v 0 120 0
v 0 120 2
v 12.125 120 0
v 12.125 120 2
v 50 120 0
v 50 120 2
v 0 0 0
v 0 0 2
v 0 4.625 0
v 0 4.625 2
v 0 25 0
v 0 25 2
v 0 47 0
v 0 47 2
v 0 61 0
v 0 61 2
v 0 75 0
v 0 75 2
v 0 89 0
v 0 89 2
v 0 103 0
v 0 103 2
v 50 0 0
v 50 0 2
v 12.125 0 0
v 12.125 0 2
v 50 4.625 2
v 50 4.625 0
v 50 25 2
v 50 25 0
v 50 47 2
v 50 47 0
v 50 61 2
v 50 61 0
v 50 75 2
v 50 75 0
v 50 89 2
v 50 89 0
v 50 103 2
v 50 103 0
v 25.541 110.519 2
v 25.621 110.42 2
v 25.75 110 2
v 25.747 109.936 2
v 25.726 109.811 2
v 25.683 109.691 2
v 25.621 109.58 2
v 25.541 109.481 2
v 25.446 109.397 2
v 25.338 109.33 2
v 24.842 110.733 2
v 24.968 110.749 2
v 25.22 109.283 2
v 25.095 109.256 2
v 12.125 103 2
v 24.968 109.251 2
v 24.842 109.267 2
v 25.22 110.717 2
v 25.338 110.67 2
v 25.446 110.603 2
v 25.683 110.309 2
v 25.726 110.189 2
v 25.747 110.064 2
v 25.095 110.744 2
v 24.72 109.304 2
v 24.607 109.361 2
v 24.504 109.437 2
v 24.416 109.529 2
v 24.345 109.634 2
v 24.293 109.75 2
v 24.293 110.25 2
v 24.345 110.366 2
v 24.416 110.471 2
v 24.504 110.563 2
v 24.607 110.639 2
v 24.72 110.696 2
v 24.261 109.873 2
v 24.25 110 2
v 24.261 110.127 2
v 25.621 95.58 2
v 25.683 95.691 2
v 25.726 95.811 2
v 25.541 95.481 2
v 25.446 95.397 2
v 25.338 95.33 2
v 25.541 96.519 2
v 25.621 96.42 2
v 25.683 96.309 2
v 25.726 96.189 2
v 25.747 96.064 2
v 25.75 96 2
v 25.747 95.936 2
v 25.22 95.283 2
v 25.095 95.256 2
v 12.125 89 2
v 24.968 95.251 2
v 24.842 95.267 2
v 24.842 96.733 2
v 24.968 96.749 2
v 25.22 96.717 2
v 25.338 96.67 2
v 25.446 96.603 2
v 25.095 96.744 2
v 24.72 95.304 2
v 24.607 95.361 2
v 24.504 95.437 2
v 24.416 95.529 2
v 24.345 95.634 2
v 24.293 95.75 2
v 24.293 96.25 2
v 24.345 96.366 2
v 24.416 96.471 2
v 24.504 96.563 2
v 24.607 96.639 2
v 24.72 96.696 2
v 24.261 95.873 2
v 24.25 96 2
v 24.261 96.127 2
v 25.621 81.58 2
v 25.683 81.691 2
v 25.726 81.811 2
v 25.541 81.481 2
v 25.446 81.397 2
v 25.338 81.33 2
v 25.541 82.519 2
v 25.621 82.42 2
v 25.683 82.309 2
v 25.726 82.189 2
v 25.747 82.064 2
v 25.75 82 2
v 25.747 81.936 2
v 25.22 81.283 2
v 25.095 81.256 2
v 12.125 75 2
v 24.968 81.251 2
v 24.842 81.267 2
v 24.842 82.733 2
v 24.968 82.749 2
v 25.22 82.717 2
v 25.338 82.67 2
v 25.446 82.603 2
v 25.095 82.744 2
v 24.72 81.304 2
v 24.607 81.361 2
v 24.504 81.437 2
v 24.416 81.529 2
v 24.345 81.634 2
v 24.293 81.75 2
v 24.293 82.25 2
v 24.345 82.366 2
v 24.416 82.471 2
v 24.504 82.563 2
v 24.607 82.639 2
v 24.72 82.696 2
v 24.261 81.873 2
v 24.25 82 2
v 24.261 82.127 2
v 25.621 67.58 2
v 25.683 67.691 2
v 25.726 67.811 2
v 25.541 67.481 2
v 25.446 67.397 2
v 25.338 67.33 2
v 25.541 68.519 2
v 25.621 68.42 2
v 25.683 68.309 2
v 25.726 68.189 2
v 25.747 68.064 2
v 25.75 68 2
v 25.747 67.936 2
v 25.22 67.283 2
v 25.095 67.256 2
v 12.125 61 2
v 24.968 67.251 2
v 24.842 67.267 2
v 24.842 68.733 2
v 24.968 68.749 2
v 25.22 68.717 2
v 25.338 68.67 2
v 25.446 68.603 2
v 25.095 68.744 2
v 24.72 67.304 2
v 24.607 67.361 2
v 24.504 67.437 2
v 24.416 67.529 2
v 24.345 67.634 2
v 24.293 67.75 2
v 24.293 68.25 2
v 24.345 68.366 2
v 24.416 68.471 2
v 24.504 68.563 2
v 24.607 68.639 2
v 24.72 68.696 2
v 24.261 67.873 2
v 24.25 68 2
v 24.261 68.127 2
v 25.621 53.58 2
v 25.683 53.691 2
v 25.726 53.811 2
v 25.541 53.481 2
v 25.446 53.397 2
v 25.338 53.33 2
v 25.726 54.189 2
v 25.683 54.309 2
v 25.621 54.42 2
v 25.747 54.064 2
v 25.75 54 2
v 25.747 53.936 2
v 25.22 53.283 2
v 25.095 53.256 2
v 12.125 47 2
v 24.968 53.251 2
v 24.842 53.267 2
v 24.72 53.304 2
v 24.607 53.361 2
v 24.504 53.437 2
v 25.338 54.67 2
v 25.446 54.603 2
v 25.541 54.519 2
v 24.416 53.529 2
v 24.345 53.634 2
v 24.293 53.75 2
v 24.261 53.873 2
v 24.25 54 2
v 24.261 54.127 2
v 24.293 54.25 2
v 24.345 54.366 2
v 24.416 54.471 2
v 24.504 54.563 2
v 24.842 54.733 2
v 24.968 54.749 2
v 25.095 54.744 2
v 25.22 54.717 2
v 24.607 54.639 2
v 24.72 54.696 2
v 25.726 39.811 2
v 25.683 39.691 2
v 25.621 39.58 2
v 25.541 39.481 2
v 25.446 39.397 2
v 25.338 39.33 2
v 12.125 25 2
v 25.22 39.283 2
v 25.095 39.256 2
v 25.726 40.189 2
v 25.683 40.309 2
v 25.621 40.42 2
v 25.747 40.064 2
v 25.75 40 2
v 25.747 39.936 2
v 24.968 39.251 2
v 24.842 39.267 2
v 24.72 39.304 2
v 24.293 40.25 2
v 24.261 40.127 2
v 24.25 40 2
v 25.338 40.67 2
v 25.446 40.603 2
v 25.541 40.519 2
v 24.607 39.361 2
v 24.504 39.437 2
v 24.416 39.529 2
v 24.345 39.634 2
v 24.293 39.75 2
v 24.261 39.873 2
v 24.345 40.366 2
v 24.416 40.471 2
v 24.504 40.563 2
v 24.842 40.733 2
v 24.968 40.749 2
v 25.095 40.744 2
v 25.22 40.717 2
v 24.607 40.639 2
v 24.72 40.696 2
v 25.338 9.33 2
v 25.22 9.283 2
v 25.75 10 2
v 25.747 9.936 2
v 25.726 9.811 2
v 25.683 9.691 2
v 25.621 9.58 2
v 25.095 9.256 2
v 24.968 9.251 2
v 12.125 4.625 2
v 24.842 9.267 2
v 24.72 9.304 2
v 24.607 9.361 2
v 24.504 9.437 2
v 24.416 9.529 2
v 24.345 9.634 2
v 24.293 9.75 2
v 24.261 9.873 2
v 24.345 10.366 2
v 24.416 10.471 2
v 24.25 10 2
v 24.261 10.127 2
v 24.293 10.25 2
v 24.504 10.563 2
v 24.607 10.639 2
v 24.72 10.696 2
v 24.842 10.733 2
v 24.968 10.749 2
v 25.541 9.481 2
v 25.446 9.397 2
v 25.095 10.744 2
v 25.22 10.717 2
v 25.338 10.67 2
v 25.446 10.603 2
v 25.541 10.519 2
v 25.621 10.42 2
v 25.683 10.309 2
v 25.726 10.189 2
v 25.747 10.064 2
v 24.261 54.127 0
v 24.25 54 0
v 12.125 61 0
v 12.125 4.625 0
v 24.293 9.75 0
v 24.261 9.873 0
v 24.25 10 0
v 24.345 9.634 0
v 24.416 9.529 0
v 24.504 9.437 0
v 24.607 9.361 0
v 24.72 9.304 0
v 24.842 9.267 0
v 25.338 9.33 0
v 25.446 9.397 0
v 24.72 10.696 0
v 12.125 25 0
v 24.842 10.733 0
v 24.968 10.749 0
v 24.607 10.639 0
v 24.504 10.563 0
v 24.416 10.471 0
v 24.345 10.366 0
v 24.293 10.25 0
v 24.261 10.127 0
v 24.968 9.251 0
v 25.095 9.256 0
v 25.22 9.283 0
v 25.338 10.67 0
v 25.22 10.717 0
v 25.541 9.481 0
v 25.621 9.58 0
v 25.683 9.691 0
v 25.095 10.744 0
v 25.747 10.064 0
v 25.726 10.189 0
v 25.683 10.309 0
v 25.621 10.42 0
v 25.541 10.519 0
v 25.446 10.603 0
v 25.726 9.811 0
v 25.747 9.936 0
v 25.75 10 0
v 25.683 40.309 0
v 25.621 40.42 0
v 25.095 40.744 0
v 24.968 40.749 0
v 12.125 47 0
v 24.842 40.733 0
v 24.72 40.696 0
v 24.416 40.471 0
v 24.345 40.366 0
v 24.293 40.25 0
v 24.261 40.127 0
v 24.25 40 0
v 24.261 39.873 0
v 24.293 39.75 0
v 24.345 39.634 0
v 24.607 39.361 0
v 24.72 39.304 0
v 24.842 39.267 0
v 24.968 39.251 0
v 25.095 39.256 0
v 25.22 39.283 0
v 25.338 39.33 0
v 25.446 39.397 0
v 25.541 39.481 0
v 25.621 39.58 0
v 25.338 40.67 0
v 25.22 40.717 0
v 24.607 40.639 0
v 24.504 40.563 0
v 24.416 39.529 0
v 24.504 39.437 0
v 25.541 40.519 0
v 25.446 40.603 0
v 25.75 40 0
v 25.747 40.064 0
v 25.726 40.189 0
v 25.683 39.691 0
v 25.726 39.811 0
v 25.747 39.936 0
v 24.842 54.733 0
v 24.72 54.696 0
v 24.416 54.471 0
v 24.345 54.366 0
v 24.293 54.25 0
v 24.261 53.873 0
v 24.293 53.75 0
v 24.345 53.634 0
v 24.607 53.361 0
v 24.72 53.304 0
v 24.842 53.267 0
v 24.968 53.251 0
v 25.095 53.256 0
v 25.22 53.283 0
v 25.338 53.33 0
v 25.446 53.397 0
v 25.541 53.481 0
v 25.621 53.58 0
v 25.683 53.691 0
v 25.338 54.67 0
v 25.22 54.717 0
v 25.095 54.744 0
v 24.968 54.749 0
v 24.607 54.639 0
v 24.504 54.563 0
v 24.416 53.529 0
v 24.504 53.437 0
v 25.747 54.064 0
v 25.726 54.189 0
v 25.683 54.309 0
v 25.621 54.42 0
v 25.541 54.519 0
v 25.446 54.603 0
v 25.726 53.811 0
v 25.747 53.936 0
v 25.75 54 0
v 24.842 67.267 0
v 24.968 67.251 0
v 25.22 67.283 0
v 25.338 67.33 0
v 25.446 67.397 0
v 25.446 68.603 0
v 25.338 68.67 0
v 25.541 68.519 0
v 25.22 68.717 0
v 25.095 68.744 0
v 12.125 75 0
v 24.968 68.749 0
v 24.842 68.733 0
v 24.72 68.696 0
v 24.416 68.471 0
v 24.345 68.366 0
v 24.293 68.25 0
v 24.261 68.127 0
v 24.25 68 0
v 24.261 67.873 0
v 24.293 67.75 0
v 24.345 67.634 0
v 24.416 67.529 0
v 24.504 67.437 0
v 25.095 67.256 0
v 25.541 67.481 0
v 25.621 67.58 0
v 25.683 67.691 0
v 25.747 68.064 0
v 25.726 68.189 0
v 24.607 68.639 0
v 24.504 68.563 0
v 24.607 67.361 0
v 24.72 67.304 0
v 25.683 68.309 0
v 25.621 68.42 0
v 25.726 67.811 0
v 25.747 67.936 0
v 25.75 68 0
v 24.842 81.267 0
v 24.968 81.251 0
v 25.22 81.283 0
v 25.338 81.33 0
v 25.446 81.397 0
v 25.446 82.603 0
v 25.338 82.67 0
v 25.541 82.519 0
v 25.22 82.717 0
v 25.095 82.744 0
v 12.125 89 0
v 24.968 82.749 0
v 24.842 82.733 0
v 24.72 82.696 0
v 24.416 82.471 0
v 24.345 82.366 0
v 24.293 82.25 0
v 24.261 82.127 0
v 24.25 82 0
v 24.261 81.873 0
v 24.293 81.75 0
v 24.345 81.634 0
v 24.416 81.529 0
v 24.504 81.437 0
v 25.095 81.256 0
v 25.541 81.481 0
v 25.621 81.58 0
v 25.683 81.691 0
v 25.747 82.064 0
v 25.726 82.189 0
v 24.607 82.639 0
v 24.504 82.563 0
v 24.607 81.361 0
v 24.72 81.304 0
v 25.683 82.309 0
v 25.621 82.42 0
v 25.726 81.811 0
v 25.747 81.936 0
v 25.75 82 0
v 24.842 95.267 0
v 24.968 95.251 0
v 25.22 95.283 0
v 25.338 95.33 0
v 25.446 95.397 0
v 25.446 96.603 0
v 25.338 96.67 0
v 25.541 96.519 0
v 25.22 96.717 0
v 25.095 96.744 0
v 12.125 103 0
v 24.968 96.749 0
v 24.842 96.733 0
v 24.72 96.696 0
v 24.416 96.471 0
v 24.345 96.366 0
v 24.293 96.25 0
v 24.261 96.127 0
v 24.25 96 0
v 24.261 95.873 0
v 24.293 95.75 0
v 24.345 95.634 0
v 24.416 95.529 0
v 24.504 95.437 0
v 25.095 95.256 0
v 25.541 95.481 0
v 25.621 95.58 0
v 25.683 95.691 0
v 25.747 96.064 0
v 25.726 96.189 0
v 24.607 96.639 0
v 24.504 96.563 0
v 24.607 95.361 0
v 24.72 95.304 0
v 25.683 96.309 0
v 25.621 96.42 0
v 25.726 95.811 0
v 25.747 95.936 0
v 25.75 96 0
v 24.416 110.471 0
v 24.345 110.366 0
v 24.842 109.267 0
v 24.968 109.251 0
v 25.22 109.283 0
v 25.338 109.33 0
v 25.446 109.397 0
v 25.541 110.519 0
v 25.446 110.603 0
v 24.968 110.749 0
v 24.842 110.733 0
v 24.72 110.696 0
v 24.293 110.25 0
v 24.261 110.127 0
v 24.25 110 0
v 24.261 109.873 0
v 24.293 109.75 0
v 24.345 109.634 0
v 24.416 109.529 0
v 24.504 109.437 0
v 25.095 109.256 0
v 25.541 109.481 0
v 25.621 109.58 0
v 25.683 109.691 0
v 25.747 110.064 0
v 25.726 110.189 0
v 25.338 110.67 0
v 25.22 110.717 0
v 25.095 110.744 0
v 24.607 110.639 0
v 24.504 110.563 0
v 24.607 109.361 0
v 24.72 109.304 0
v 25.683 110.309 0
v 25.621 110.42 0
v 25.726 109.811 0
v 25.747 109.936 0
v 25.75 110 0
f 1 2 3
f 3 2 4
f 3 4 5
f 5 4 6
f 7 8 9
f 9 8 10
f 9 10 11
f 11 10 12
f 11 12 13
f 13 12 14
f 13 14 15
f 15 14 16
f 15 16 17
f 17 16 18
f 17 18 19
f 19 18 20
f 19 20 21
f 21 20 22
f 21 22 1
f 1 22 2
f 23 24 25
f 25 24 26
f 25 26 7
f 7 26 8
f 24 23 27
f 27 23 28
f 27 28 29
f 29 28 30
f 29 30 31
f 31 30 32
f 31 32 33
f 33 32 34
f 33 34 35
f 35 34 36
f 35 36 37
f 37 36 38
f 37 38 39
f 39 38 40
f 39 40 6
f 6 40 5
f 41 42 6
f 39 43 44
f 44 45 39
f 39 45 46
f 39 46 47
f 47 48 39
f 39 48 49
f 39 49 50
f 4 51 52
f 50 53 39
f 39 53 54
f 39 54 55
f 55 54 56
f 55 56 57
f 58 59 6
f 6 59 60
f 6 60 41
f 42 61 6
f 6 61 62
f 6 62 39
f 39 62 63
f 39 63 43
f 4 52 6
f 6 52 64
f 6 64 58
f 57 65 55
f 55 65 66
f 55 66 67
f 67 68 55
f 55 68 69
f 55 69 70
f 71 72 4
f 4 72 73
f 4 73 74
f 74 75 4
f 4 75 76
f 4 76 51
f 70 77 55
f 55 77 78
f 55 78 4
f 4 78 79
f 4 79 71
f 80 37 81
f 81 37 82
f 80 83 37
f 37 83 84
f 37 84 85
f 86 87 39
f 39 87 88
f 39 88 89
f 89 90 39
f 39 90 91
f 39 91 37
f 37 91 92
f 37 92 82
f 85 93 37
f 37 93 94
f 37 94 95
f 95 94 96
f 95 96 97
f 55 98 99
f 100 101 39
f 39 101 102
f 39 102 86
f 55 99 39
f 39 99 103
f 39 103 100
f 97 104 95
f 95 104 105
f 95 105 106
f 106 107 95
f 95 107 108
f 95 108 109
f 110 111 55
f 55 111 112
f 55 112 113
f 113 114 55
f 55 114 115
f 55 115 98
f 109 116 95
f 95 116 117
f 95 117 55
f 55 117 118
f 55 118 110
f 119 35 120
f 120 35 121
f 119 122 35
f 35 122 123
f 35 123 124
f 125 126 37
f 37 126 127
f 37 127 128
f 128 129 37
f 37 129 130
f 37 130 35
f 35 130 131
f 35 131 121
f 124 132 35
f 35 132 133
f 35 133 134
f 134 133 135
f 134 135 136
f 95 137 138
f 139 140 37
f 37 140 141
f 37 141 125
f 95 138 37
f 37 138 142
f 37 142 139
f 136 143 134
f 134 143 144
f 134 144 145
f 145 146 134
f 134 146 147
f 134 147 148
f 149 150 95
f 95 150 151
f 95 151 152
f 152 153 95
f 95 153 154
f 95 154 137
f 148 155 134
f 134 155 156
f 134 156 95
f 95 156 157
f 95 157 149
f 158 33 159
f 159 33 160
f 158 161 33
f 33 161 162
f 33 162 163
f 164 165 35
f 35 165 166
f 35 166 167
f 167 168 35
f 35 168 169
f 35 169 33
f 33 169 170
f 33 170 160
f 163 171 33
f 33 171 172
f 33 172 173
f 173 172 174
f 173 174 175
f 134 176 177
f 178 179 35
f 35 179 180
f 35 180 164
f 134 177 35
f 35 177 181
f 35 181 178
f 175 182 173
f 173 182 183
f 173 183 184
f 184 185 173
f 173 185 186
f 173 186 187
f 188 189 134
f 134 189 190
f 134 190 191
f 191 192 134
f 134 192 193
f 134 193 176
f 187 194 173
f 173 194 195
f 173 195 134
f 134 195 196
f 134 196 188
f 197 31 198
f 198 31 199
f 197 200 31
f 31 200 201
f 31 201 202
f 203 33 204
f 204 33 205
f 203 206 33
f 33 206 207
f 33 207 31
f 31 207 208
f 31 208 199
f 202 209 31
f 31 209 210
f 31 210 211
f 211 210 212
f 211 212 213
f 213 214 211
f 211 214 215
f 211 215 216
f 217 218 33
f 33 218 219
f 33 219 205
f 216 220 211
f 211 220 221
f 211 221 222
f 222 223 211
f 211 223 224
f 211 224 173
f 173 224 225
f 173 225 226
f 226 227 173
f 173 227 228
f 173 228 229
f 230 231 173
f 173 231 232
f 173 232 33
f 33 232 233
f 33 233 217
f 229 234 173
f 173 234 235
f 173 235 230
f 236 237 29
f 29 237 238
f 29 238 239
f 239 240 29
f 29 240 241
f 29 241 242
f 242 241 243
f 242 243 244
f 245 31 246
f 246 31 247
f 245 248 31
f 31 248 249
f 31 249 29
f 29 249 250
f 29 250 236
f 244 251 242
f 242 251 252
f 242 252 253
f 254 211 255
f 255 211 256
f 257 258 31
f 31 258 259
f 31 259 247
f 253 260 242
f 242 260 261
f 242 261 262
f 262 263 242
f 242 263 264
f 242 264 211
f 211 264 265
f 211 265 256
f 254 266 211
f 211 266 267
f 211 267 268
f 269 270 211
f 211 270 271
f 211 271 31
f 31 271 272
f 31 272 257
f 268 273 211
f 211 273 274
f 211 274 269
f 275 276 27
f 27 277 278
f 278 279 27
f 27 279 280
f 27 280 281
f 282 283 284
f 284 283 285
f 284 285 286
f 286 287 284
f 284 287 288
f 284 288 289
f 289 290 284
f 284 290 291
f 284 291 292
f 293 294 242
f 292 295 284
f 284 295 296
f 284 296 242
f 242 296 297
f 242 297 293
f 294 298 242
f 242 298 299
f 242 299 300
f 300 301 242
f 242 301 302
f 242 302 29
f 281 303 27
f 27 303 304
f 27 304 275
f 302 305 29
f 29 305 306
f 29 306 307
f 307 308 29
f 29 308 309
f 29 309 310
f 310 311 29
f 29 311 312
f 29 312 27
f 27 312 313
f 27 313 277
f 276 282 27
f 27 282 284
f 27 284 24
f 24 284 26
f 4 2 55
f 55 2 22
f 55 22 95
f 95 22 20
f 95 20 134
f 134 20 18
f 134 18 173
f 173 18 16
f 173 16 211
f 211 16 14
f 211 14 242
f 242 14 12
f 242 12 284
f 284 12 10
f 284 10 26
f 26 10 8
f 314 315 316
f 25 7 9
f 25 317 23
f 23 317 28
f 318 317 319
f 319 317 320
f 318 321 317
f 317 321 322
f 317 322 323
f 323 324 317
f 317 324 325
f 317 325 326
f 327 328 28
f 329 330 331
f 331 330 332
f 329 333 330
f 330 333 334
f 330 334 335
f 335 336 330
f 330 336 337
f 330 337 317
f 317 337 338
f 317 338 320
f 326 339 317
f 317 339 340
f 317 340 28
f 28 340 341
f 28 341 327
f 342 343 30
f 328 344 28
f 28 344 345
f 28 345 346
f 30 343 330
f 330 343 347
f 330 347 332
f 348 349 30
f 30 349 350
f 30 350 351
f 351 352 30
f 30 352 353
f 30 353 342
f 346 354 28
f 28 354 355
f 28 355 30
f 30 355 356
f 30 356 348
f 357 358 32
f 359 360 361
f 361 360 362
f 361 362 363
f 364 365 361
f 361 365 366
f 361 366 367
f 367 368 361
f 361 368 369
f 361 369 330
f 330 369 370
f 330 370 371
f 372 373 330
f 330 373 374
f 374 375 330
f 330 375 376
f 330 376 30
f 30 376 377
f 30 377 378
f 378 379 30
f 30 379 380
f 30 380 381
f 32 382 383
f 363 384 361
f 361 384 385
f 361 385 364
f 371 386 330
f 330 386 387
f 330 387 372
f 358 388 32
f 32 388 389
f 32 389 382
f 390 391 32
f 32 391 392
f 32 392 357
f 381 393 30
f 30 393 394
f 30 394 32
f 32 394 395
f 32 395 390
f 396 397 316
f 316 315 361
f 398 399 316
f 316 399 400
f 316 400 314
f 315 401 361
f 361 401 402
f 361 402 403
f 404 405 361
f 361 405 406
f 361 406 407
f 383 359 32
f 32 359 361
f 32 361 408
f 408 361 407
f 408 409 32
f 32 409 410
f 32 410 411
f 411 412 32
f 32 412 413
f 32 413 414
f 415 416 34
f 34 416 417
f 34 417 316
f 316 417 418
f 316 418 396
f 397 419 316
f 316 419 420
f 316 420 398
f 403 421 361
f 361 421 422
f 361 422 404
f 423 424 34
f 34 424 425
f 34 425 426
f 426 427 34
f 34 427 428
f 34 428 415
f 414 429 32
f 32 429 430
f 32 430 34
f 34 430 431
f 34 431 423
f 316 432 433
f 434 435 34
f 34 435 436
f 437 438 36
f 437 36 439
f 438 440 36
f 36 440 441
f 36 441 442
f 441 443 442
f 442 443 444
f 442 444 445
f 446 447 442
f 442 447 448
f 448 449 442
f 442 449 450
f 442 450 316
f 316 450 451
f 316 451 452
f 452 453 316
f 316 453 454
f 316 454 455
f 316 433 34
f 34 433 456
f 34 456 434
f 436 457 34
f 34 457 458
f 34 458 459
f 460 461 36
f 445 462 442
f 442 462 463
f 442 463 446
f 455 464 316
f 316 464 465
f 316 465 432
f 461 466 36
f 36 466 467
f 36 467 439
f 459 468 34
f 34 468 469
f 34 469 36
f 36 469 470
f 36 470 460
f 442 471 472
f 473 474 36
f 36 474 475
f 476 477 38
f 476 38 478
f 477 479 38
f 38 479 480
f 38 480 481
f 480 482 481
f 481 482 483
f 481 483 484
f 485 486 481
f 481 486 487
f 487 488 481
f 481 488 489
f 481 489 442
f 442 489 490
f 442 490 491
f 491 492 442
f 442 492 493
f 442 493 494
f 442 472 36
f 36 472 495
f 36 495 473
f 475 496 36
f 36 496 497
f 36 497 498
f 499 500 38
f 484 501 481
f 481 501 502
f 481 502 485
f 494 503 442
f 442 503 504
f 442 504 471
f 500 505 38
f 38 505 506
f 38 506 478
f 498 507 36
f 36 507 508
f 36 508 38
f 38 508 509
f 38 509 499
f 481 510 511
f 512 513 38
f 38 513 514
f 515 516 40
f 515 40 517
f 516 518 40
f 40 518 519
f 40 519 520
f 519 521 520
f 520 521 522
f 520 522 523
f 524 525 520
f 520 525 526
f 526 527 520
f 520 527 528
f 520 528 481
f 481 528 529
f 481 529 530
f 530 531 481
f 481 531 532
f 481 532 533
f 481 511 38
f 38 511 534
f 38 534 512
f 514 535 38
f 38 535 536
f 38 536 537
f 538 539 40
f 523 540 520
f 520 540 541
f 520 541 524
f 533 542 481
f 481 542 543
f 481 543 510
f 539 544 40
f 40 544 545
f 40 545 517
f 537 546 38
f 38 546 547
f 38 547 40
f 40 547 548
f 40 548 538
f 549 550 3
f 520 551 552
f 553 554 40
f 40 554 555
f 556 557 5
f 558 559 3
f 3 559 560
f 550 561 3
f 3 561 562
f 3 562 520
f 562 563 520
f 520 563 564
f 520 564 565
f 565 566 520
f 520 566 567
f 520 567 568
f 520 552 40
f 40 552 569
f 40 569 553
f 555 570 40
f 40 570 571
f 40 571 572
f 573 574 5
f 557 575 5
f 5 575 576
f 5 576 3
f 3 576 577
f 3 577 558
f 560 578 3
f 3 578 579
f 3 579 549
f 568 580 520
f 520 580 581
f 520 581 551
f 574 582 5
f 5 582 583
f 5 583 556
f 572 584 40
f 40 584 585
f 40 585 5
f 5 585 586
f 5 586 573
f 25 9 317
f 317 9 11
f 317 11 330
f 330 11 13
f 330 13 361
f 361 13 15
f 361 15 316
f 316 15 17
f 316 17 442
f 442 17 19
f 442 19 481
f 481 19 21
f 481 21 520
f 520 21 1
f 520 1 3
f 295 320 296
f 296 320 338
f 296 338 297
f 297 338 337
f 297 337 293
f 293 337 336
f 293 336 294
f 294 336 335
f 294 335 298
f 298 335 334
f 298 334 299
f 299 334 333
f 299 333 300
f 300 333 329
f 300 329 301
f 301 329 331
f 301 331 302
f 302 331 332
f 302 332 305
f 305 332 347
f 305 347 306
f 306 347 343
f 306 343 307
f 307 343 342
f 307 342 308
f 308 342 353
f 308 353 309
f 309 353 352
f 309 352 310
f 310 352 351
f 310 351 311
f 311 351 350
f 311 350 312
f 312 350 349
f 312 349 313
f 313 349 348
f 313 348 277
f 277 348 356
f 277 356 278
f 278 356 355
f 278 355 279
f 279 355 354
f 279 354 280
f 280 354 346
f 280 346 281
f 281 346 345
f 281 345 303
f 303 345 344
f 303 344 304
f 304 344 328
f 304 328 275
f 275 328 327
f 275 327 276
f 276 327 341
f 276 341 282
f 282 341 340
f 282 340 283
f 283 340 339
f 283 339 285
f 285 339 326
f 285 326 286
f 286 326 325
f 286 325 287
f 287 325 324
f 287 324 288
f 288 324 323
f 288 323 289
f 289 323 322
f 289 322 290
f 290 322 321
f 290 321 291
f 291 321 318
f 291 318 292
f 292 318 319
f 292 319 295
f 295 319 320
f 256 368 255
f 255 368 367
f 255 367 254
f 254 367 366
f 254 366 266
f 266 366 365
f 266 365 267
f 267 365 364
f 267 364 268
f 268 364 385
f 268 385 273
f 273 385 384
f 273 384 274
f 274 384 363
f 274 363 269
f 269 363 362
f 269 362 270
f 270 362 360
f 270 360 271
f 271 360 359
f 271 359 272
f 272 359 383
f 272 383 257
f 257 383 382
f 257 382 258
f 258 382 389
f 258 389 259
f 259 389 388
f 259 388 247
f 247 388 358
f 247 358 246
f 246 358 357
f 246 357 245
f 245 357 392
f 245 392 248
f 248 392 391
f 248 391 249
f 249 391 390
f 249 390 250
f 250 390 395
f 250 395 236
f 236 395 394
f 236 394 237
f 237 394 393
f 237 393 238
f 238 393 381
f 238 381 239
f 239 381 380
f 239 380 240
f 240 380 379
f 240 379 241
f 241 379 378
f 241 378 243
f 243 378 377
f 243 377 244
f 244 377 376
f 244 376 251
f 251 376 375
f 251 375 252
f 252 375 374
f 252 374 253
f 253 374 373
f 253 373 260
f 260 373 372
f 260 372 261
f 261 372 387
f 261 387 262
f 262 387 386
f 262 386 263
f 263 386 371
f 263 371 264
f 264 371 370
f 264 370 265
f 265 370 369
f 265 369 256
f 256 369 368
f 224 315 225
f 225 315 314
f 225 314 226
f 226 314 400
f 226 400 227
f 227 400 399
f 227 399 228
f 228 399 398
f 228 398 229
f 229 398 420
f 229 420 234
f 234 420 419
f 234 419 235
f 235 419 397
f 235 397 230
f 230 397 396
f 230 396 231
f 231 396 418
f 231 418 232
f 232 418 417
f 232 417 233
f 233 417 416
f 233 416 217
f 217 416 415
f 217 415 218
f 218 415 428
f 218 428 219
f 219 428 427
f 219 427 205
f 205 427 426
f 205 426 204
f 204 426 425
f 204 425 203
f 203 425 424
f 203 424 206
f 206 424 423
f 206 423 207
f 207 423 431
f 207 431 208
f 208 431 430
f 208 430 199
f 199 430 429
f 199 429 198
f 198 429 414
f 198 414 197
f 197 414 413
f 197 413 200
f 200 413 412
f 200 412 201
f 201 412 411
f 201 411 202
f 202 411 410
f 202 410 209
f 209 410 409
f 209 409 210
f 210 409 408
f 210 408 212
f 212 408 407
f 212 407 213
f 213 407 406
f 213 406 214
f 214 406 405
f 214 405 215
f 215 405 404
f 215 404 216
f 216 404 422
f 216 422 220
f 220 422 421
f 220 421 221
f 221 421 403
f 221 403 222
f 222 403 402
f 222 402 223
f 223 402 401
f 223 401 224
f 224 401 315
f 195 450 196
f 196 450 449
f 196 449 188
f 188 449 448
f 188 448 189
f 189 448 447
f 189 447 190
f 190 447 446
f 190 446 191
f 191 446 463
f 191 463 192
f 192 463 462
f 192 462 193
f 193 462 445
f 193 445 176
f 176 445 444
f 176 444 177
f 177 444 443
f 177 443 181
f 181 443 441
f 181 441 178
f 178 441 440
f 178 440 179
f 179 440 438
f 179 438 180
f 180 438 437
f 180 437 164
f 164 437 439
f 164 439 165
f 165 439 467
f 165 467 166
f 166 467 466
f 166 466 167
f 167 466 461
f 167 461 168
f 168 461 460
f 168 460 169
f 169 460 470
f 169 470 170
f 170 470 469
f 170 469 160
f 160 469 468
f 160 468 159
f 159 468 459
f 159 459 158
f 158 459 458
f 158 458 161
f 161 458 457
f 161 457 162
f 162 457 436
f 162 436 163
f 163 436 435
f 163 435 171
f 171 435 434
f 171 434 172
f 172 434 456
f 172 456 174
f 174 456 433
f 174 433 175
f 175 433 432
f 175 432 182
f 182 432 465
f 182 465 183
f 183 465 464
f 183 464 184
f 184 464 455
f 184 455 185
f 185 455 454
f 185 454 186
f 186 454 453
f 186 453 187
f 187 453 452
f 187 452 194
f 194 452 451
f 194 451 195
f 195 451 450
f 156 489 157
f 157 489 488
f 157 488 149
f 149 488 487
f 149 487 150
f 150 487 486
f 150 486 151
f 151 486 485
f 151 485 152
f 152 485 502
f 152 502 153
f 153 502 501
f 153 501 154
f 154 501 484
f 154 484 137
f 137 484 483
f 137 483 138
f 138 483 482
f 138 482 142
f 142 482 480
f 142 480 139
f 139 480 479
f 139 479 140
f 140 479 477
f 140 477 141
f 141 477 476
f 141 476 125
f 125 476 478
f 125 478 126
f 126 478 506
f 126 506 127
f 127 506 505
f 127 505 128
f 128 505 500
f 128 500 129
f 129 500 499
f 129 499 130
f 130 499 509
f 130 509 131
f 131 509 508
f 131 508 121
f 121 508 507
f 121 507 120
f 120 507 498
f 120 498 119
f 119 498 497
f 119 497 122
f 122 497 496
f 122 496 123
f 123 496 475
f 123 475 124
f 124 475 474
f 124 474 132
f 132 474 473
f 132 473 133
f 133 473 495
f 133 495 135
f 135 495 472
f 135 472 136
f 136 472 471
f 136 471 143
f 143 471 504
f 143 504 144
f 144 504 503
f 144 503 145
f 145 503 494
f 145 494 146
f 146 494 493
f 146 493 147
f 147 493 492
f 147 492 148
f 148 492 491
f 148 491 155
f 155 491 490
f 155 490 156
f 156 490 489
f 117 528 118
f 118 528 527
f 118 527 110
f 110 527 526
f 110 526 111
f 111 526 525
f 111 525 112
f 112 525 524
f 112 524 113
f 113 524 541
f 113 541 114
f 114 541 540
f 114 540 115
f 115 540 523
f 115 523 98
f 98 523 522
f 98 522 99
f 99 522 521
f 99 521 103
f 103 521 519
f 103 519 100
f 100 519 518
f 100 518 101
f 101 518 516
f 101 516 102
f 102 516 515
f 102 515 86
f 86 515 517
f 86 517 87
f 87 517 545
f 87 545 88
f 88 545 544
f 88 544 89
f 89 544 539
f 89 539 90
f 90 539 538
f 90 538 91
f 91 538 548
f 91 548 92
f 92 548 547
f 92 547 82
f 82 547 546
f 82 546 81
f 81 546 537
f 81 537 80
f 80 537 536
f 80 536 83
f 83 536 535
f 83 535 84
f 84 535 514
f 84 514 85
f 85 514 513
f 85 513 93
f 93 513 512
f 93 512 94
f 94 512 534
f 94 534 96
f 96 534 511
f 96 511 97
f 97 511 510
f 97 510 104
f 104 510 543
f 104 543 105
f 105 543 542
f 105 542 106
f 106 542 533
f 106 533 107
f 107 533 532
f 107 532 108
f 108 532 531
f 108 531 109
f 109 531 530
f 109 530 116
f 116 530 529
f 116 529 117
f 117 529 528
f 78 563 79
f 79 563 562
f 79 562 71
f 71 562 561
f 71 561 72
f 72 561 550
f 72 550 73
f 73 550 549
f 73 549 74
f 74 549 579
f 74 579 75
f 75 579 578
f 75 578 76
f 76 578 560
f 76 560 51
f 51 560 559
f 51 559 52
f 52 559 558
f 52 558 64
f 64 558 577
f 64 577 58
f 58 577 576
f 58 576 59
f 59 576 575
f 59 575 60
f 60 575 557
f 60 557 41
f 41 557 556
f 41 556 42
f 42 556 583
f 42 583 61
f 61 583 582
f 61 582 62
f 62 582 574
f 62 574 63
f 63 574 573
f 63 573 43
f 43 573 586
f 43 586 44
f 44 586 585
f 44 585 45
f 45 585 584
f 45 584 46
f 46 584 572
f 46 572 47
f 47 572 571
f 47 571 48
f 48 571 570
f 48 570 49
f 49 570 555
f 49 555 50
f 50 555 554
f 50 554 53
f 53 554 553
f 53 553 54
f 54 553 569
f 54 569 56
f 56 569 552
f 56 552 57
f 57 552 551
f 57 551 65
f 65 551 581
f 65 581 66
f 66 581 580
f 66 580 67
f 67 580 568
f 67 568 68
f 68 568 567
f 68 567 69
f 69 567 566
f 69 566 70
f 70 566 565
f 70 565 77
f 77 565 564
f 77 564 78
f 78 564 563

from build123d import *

# Parameters (mm, degrees)
SKETCH1_W           = 50
SKETCH1_H           = 120
BOSS_EXTRUDE2_DEPTH = 2
SKETCH2_R           = 0.75
CUT_EXTRUDE2_DEPTH  = 2


with BuildPart() as part:
    # Sketch1 → Boss-Extrude2 (new body)
    with BuildSketch(Plane.XY):
        with Locations((25, 60)):
            Rectangle(SKETCH1_W, SKETCH1_H)
    extrude(amount=BOSS_EXTRUDE2_DEPTH)

    # Sketch2 → Cut-Extrude2 (cut)
    with BuildSketch(Plane.XY):
        with Locations((25, 110)):
            Circle(SKETCH2_R)
        with Locations((25, 96)):
            Circle(SKETCH2_R)
        with Locations((25, 82)):
            Circle(SKETCH2_R)
        with Locations((25, 68)):
            Circle(SKETCH2_R)
        with Locations((25, 54)):
            Circle(SKETCH2_R)
        with Locations((25, 40)):
            Circle(SKETCH2_R)
        with Locations((25, 10)):
            Circle(SKETCH2_R)
    extrude(amount=CUT_EXTRUDE2_DEPTH, mode=Mode.SUBTRACT)


solid = part.part
